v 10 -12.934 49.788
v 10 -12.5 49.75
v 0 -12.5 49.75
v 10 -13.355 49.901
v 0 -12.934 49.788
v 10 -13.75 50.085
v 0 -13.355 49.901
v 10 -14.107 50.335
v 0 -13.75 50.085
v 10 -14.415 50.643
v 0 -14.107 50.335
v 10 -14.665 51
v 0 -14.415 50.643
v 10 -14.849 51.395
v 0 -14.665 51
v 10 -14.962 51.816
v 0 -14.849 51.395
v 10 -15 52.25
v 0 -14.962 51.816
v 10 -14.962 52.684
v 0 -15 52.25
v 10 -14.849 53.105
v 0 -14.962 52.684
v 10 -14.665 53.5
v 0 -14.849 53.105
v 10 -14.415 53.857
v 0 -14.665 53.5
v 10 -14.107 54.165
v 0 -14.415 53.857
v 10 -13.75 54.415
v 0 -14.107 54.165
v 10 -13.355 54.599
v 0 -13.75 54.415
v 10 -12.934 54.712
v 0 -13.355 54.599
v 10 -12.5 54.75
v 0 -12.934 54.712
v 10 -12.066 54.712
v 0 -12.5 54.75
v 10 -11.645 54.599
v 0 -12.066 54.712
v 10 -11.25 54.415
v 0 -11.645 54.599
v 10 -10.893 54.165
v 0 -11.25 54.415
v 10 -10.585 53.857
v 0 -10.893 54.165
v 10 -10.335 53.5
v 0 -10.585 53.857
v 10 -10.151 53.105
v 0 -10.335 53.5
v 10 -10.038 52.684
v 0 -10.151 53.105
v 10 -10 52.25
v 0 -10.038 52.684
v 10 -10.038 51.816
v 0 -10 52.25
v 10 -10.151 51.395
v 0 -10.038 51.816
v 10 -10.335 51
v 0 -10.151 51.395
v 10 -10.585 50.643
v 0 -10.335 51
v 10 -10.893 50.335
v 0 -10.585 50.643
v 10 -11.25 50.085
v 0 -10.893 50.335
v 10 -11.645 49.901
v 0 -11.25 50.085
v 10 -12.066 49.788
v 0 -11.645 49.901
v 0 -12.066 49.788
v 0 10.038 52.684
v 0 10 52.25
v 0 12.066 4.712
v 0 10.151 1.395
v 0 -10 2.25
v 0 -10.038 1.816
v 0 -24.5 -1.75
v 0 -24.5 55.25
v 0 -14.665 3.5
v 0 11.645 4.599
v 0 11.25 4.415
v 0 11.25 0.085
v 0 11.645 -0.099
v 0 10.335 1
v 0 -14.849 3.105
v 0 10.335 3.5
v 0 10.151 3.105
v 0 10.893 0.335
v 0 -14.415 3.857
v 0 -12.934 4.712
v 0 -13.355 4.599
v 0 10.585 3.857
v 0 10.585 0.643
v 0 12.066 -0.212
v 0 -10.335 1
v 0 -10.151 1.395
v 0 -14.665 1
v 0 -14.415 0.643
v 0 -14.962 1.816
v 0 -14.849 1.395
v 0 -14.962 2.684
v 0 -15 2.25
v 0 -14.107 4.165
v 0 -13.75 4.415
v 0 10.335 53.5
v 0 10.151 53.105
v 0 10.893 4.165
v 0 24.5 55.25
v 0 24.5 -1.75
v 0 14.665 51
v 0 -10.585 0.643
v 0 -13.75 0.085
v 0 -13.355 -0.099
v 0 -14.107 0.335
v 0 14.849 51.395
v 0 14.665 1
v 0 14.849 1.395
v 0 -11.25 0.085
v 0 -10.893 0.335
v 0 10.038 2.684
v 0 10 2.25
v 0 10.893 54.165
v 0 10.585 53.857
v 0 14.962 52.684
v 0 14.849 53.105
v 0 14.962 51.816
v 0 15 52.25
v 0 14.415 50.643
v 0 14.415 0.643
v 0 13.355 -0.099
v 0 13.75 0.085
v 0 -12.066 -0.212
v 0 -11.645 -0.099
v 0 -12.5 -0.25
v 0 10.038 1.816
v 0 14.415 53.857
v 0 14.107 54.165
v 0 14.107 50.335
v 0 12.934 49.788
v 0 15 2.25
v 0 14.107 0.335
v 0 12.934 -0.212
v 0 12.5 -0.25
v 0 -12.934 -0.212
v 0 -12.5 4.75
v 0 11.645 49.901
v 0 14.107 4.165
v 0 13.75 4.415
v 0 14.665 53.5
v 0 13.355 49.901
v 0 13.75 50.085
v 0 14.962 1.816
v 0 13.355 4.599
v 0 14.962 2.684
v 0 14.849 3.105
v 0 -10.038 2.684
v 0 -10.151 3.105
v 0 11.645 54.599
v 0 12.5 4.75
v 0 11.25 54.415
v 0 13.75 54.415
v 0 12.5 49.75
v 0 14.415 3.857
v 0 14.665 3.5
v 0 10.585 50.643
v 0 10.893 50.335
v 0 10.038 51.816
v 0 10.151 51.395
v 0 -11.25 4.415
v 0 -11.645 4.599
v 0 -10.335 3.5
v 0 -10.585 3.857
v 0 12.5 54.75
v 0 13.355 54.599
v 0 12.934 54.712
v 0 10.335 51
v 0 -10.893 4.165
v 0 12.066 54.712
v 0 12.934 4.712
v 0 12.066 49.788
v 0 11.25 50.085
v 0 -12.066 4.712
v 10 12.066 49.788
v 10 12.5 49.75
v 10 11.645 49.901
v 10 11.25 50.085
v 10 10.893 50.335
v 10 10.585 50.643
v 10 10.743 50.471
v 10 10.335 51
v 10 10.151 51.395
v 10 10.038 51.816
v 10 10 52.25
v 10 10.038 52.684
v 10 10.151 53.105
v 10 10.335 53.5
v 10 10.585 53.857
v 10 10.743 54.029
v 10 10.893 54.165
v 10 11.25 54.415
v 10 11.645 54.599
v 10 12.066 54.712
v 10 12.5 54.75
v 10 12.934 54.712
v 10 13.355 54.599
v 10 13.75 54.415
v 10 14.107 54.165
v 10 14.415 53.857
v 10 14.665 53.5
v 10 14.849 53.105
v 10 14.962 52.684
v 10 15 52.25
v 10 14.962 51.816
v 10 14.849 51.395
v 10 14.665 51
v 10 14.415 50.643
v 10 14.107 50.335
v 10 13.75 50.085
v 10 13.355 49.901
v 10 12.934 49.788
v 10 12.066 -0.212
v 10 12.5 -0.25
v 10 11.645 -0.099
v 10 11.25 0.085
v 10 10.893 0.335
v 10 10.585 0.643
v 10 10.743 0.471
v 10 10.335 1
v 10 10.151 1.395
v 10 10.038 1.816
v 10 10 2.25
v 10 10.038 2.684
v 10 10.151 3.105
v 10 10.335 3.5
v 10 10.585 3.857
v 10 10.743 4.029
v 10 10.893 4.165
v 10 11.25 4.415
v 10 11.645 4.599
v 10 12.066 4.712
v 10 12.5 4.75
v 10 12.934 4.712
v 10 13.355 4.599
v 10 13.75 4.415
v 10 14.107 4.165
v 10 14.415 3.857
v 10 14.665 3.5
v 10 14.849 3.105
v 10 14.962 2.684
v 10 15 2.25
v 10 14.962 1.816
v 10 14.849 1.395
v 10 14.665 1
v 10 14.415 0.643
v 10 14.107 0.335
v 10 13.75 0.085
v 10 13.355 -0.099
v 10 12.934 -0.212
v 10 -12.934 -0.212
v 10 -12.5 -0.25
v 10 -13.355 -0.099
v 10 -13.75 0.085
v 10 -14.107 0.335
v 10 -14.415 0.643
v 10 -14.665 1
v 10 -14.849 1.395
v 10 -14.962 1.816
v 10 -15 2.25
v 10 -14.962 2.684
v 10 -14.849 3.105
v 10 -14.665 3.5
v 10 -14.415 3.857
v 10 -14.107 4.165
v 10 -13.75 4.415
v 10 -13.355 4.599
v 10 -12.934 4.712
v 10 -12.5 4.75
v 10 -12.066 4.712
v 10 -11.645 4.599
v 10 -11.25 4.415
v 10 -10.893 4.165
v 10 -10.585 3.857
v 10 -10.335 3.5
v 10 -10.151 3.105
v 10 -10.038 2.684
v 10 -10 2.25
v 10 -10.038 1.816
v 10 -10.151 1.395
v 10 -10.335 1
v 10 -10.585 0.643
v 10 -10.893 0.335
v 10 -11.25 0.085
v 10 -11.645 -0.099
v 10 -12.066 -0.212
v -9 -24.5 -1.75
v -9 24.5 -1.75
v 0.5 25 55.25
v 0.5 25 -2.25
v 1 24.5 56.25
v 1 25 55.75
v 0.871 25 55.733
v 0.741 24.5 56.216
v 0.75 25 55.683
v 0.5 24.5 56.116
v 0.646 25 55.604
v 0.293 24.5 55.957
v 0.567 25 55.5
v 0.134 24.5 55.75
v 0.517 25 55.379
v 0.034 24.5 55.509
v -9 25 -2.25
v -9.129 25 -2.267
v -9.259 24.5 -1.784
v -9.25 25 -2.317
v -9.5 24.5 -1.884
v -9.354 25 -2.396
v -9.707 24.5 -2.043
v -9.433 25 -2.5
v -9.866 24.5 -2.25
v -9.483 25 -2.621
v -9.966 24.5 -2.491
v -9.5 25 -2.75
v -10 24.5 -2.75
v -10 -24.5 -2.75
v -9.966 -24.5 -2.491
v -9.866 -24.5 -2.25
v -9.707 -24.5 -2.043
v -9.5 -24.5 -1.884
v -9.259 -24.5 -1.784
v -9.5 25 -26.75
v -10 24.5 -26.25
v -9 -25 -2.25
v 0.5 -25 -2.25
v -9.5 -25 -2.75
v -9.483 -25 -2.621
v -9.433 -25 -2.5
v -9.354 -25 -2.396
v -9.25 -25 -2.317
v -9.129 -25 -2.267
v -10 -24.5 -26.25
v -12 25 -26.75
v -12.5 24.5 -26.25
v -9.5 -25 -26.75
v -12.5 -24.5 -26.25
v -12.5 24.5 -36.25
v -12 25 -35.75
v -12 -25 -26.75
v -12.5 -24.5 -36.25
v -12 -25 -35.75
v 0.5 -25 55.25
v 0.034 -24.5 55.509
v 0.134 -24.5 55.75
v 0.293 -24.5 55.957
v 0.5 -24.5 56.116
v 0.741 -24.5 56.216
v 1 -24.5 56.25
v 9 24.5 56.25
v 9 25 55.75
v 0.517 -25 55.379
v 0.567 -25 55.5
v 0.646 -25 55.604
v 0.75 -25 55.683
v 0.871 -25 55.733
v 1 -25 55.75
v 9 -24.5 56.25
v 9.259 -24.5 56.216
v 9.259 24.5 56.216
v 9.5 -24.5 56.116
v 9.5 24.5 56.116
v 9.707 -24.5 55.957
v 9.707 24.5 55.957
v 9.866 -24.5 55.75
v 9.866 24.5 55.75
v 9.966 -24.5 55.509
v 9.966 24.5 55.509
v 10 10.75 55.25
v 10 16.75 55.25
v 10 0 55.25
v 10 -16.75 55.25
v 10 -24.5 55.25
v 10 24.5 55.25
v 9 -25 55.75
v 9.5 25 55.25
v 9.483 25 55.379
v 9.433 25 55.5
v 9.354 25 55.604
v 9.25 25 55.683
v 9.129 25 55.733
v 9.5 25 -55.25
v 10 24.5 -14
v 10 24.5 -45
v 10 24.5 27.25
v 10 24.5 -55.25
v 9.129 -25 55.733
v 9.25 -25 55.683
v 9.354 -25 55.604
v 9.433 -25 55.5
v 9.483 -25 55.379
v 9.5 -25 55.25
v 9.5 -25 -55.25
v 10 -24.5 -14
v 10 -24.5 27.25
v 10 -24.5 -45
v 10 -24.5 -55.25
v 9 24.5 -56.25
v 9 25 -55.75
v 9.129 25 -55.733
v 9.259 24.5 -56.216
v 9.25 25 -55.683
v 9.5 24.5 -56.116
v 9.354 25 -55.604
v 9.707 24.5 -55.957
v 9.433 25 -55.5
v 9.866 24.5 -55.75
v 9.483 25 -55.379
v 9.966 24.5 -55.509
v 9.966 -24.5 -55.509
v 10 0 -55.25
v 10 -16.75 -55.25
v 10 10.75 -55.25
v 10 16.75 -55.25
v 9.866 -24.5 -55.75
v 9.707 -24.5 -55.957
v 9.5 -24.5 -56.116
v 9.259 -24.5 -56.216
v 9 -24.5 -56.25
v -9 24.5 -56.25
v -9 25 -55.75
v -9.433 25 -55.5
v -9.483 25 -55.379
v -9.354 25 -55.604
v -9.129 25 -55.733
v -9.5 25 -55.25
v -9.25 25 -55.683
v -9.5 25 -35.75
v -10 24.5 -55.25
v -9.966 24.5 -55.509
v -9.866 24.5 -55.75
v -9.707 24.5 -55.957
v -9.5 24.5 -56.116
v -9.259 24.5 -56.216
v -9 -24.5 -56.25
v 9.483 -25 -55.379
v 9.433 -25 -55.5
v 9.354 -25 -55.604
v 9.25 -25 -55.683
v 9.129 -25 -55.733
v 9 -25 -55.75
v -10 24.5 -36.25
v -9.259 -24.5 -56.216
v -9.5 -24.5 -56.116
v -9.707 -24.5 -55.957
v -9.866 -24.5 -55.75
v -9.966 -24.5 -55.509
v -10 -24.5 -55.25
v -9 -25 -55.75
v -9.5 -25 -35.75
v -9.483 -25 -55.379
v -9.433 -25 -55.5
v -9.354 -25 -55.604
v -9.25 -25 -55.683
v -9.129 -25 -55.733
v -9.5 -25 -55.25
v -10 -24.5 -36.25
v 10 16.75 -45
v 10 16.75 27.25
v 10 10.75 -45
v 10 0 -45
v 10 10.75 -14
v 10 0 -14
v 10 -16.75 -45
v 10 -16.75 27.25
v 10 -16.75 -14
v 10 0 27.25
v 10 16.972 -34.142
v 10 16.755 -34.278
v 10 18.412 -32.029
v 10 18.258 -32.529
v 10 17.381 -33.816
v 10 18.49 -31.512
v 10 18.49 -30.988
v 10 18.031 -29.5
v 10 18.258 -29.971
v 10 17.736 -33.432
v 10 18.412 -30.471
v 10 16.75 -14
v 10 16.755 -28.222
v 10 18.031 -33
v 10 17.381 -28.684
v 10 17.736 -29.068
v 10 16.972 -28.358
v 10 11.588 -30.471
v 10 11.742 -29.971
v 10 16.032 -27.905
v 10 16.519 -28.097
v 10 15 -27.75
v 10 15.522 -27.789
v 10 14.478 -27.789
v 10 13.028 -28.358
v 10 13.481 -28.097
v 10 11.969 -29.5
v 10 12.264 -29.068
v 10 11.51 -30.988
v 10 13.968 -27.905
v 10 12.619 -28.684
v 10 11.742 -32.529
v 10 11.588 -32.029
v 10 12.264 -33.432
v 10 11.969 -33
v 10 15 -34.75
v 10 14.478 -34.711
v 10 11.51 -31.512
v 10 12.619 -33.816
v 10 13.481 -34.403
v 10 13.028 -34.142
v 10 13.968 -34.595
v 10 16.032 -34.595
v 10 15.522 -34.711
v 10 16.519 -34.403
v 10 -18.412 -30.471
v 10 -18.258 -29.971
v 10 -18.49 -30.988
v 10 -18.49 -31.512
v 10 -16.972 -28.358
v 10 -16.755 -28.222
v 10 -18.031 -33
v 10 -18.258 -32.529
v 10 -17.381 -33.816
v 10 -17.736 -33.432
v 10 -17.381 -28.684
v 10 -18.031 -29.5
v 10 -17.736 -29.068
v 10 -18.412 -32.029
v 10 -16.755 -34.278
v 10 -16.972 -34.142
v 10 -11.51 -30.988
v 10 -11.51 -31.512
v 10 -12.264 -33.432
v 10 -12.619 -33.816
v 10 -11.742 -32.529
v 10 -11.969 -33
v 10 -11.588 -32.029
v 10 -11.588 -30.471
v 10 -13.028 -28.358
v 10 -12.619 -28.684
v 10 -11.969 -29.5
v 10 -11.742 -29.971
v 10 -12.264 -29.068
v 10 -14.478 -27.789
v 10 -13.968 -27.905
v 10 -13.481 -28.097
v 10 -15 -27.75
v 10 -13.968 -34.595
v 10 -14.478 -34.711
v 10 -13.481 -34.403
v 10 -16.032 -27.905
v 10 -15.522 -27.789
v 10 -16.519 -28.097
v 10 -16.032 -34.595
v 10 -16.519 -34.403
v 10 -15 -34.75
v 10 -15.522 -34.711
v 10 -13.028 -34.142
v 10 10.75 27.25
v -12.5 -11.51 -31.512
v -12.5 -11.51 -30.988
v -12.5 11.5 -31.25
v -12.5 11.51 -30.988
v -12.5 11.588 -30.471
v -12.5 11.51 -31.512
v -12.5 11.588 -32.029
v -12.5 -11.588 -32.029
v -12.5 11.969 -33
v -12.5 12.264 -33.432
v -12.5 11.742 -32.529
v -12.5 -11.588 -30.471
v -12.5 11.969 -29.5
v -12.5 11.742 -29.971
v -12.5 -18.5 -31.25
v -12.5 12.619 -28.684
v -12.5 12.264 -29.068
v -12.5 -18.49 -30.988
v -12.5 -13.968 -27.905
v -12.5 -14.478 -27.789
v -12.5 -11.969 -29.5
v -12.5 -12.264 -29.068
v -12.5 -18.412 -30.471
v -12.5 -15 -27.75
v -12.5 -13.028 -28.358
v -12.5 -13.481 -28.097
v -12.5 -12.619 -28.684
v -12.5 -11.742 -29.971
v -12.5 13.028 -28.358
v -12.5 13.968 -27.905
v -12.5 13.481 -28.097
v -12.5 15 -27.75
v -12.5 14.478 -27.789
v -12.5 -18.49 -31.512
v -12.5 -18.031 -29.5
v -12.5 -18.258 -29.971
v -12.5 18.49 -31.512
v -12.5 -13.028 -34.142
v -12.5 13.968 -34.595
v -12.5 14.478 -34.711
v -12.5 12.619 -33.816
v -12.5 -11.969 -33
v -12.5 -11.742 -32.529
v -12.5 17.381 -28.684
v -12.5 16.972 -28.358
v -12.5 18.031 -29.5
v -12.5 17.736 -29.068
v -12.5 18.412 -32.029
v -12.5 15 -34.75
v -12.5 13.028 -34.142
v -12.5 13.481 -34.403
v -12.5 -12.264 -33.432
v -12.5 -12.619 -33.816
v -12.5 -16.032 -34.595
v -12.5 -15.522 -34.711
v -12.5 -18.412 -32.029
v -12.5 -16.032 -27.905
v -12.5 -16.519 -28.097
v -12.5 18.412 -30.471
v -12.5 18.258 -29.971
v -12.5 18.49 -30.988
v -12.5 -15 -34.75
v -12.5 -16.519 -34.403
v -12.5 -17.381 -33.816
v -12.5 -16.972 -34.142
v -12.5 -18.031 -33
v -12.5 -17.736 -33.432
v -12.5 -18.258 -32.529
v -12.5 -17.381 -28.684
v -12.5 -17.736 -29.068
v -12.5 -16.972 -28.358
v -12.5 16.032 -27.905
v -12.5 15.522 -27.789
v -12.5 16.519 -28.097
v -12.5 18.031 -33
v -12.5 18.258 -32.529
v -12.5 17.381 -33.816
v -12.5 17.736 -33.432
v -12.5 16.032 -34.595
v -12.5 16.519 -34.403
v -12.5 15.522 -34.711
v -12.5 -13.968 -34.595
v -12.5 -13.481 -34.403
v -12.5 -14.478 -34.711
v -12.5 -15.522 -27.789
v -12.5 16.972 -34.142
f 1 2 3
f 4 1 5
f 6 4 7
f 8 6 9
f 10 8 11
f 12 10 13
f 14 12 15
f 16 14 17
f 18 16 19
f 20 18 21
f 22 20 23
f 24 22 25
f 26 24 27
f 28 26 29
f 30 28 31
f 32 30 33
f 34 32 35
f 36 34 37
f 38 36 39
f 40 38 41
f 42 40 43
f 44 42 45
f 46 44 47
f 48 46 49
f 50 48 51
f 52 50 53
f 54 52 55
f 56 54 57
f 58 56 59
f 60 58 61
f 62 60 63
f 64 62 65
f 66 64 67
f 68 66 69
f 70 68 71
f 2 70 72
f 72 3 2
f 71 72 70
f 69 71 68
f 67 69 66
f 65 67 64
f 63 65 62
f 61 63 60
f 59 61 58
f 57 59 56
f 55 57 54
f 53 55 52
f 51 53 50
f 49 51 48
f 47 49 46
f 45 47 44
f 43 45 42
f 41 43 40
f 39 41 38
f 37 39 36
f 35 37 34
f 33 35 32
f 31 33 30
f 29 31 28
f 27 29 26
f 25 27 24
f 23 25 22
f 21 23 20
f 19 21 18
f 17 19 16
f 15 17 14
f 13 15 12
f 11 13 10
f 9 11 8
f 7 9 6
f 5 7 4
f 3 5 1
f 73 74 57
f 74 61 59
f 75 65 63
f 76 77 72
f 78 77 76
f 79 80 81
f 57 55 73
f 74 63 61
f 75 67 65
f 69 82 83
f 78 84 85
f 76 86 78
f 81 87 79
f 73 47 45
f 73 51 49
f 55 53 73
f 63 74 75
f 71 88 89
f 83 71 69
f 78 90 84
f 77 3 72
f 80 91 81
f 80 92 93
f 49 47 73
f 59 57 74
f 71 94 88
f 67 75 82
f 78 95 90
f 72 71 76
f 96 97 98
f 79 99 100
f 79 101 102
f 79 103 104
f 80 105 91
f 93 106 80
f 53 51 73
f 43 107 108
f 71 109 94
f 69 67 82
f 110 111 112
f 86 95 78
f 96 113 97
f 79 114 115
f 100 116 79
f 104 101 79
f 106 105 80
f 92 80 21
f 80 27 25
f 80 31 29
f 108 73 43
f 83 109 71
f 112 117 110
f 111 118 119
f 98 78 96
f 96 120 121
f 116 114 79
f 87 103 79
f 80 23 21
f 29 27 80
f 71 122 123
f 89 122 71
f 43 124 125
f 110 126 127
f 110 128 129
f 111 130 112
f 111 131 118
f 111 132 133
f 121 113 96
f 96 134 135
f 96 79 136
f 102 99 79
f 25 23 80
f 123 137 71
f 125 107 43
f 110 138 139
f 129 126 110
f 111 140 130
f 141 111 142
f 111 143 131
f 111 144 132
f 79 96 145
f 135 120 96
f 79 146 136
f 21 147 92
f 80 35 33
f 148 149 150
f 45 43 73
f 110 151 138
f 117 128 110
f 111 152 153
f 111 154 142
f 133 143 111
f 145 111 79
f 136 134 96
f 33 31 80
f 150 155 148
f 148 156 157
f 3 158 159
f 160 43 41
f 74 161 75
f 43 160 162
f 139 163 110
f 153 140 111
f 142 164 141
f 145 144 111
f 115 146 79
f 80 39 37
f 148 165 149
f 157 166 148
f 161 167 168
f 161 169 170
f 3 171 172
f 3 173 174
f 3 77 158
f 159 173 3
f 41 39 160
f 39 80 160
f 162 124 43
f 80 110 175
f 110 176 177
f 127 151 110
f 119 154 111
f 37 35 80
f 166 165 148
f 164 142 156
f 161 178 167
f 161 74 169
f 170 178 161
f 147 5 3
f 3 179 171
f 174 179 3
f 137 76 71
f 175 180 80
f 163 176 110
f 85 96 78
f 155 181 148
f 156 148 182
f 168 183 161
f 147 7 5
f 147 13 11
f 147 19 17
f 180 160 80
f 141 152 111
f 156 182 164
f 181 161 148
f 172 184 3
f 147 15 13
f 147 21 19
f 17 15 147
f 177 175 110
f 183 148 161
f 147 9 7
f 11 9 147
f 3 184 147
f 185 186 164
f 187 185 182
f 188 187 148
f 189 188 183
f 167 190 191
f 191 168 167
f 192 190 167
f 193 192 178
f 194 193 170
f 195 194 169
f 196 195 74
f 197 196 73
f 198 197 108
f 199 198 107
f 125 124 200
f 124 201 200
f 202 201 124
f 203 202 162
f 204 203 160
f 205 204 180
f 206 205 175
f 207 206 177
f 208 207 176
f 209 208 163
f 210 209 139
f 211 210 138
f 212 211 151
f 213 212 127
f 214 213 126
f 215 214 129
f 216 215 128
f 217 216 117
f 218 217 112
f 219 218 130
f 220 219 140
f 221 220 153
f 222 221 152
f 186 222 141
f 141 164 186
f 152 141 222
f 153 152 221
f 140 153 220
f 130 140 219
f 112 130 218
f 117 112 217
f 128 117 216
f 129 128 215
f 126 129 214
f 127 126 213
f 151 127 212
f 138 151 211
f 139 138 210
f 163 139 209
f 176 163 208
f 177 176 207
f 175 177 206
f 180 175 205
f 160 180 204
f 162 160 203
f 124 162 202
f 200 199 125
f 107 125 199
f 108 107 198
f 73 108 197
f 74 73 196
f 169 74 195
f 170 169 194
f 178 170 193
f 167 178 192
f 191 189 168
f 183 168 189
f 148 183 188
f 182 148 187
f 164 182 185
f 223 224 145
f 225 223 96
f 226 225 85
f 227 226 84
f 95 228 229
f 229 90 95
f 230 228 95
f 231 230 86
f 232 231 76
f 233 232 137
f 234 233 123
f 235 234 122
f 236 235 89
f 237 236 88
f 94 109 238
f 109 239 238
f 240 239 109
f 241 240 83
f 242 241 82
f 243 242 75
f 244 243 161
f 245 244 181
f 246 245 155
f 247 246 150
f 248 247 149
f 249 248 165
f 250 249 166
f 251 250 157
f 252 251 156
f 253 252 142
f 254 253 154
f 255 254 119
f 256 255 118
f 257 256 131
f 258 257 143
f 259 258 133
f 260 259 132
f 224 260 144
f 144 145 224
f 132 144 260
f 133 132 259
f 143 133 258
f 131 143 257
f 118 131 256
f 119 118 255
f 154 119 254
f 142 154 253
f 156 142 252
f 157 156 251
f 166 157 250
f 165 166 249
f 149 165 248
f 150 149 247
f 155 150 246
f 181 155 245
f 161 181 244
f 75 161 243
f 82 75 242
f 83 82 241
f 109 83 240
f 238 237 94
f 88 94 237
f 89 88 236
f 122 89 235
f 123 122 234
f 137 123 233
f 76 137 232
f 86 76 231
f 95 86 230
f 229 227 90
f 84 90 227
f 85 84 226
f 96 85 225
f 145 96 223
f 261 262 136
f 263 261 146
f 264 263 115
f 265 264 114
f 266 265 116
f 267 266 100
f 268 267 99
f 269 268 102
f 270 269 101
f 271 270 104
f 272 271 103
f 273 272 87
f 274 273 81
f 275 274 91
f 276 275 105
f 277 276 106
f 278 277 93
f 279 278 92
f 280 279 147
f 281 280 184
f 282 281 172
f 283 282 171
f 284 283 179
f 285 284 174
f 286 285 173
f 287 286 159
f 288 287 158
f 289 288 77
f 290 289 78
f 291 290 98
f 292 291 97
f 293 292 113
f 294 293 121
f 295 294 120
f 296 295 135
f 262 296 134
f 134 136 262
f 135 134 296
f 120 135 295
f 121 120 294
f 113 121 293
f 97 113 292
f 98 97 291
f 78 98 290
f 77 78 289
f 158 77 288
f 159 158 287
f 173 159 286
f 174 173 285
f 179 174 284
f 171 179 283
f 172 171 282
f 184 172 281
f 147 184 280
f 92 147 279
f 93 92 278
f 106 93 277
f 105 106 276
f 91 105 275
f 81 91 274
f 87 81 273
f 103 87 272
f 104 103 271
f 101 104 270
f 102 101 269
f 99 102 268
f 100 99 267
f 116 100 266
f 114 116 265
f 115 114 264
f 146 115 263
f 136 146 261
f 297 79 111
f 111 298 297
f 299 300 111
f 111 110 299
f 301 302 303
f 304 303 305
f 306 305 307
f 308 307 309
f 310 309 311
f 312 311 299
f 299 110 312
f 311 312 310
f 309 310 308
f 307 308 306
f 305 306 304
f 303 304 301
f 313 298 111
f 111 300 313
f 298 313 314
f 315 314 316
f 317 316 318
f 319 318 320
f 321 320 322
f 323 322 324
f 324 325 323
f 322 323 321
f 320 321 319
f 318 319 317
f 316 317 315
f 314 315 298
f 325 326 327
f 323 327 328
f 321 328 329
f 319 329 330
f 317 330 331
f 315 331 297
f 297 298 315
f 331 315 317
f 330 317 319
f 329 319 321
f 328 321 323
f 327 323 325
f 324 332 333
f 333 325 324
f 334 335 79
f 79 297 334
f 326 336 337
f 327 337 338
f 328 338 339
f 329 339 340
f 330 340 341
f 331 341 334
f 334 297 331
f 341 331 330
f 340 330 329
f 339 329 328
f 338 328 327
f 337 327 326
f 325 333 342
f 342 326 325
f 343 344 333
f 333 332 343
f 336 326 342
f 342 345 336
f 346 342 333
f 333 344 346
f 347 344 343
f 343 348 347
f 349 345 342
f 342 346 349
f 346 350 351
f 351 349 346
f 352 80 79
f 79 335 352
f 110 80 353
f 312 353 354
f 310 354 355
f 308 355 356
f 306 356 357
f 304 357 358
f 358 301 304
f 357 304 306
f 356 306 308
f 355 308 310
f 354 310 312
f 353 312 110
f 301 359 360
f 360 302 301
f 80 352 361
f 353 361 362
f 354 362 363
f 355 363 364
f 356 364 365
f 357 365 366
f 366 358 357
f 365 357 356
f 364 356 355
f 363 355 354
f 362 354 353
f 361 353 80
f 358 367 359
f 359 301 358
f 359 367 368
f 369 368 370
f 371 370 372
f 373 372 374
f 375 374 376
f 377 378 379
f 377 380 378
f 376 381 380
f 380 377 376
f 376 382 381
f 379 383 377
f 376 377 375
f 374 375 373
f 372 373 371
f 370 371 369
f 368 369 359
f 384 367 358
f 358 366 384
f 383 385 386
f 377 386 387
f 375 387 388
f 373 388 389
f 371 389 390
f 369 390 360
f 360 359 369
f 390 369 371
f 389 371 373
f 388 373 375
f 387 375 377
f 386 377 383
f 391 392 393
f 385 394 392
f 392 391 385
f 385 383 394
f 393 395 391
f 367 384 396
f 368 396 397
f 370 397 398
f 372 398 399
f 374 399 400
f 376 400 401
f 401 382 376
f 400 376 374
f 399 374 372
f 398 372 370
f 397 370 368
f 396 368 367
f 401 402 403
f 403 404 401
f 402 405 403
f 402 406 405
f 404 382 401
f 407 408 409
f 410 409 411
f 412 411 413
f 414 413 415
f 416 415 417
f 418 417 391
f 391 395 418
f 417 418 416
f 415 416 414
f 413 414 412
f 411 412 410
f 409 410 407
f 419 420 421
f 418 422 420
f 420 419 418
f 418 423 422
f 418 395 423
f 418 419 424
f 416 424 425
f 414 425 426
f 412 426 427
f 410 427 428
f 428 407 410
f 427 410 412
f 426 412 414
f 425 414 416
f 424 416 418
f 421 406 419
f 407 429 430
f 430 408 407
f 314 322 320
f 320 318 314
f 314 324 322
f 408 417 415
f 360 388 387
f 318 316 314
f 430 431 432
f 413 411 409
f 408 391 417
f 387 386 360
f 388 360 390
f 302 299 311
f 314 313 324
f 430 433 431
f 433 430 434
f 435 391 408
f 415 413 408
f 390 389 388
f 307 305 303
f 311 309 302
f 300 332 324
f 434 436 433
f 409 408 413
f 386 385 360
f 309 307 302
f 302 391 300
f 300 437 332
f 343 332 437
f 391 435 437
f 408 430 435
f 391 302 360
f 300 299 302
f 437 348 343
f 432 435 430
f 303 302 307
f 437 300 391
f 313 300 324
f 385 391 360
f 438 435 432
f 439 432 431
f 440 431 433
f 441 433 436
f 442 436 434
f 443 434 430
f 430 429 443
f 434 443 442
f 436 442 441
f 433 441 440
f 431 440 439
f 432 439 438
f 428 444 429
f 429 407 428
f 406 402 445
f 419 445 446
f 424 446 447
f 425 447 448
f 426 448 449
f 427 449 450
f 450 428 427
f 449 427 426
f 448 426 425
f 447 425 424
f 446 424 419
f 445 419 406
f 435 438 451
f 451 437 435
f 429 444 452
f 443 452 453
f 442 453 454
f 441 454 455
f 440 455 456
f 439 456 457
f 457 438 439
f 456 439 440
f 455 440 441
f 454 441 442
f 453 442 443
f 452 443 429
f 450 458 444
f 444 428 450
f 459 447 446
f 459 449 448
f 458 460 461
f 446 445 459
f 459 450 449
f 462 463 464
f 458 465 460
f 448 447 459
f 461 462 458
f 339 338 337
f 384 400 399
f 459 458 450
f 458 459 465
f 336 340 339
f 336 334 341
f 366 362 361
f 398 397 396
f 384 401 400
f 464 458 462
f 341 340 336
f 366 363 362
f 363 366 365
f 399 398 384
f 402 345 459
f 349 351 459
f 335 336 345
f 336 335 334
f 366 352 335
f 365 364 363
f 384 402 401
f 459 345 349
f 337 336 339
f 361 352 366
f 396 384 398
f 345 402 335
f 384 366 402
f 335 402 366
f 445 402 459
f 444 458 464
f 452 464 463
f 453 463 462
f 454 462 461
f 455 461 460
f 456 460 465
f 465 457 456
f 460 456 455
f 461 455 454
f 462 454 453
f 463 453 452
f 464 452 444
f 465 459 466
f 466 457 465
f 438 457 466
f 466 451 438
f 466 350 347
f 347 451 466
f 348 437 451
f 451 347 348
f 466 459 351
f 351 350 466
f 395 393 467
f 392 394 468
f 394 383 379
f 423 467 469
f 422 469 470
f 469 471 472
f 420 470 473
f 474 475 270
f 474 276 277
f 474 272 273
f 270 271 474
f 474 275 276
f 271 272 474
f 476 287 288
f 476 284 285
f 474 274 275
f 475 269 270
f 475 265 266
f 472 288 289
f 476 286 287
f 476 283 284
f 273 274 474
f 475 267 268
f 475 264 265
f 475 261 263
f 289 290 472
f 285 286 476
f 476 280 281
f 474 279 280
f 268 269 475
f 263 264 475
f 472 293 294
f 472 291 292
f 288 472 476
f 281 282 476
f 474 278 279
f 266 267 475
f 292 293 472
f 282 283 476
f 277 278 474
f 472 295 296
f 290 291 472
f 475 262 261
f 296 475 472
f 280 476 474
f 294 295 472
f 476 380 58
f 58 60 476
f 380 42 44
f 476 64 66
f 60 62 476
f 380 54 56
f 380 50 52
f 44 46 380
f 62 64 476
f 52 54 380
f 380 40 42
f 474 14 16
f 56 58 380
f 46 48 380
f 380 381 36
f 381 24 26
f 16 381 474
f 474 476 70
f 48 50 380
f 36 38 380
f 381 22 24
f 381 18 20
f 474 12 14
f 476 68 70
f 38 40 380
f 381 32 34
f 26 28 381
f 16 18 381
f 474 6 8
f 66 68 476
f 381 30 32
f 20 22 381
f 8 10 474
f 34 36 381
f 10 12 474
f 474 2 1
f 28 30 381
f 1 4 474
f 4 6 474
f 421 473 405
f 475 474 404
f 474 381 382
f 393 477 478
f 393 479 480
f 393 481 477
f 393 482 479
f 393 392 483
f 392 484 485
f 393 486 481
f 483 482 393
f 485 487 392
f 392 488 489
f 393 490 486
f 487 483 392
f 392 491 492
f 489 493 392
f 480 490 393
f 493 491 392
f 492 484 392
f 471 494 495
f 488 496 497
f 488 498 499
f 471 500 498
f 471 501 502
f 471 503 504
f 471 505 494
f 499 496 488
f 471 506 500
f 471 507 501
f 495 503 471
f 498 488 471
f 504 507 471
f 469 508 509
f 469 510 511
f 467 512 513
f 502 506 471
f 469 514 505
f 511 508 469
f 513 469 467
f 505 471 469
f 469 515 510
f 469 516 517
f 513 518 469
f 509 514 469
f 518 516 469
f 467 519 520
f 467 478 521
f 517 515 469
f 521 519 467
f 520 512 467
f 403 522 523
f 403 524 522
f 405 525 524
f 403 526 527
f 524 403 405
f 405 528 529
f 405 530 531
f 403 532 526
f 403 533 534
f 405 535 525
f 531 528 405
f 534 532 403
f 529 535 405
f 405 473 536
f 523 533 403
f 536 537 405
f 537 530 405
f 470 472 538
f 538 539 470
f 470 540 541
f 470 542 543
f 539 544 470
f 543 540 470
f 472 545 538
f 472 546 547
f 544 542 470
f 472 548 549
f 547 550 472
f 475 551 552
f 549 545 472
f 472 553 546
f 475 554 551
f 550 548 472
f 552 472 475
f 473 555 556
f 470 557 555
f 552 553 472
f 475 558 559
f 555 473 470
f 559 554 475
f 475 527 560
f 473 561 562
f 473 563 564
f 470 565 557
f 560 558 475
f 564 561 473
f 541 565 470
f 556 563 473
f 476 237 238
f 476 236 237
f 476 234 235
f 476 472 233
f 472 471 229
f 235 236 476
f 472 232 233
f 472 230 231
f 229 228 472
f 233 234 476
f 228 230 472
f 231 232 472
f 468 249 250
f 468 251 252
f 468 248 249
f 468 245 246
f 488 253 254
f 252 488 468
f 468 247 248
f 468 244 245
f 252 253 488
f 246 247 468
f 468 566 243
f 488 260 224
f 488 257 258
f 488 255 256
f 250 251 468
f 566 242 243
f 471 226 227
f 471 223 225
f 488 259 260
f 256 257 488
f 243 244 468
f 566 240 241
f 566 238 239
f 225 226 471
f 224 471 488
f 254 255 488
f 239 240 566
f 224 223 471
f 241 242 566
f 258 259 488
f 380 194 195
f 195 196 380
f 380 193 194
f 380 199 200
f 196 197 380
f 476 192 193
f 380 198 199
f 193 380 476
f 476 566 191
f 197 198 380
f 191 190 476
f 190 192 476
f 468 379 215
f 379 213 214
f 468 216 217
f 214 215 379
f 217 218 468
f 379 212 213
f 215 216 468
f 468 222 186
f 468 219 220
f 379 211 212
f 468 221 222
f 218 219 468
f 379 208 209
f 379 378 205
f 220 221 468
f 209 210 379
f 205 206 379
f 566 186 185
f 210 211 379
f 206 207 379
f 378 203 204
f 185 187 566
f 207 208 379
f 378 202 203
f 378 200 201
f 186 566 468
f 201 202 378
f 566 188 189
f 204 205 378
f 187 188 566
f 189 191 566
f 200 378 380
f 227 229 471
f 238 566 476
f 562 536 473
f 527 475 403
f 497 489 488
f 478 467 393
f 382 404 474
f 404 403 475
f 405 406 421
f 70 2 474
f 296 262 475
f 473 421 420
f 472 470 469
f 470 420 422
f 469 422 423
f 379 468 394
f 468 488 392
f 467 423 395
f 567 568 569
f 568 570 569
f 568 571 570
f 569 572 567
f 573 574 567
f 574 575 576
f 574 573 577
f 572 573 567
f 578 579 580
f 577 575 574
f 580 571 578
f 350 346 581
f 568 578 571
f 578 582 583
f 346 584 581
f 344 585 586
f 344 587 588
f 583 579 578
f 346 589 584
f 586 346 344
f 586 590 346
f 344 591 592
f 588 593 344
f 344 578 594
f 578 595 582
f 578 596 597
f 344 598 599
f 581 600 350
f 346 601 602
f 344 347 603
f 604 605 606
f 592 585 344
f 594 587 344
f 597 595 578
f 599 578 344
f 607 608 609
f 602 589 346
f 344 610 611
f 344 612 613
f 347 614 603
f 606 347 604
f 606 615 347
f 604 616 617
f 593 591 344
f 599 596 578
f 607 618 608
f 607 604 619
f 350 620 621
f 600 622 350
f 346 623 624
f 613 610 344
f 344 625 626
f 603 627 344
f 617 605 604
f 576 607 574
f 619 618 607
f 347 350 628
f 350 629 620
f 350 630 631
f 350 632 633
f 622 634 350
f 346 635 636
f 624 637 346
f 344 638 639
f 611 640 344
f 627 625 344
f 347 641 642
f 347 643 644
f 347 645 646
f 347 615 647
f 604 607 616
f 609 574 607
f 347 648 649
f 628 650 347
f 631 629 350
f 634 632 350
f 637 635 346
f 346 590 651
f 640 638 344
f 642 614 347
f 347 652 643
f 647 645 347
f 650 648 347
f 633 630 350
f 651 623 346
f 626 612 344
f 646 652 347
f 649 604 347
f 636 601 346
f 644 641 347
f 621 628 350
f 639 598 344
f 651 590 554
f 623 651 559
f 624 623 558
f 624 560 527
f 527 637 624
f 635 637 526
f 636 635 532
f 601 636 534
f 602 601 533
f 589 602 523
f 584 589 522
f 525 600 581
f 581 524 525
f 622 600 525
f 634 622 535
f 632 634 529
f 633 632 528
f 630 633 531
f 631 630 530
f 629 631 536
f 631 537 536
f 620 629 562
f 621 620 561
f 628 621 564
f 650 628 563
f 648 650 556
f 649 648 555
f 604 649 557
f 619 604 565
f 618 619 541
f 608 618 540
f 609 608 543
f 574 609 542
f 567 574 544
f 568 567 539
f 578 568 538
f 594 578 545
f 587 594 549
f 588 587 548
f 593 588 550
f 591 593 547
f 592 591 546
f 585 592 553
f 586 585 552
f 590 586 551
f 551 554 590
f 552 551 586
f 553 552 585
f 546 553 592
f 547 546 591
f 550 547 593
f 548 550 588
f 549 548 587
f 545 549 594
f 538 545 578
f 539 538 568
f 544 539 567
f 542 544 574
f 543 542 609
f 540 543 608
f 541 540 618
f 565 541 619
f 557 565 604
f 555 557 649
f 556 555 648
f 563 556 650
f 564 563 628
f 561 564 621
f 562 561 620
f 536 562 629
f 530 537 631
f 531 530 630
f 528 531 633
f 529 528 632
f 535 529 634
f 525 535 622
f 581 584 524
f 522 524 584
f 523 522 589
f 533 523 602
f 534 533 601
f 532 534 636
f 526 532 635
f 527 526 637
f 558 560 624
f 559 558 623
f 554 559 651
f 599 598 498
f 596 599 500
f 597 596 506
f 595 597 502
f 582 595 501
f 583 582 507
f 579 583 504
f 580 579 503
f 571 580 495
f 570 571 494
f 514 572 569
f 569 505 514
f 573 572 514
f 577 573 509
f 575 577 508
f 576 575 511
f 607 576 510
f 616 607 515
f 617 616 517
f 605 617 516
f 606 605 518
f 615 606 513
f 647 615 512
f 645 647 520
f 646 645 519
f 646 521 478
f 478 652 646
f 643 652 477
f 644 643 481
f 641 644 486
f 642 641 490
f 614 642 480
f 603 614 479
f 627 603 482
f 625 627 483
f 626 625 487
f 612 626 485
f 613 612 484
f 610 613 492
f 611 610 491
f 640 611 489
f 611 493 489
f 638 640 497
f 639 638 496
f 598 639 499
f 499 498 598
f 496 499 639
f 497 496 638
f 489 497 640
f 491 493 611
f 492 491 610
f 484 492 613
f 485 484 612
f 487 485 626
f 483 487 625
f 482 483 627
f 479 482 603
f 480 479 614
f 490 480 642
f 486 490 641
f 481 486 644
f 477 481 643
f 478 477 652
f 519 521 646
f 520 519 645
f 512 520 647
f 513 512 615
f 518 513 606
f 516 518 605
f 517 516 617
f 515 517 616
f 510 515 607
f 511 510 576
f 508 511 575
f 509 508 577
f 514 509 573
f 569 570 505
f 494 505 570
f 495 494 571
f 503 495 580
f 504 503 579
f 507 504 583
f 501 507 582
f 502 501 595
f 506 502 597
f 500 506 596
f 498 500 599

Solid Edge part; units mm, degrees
sketch "Sketch1" plane through (0, 0, 0) normal (0, -1, 0) x (1, 0, 0)
  line L0 (10, 56.25) -> (0, 56.25)
  line L1 (0, 56.25) -> (0, -1.75)
  line L2 (0, -1.75) -> (-10, -1.75)
  line L3 (-10, -1.75) -> (-10, -56.25)
  line L4 (-10, -56.25) -> (10, -56.25)
  line L5 (10, -56.25) -> (10, 56.25)
extrude "Extrusionsausprägung_20" add sketch "Sketch1" along normal mid plane 50
hole "Bohrung_4" at (10, -12.5, 52.25) direction (-1, 0, 0) diameter 5 end up to next
hole "Hole1" at (10, 12.5, 52.25) direction (-1, 0, 0) diameter 5 end up to next
hole "Hole2" at (10, 12.5, 2.25) direction (-1, 0, 0) diameter 5 end up to next
hole "Hole3" at (10, -12.5, 2.25) direction (-1, 0, 0) diameter 5 end up to next
sketch "Sketch2" plane through (0, -25, 0) normal (0, -1, 0) x (0, 0, -1)
  line L0 (26.25, -12.5) -> (36.25, -12.5)
  line L1 (36.25, -12.5) -> (36.25, -10)
  line L2 (36.25, -10) -> (26.25, -10)
  line L3 (26.25, -10) -> (26.25, -12.5)
extrude "Protrusion1" add sketch "Sketch2" against normal up to vertex (50 mm away)
hole "Bohrung_8" at (-12.5, -15, -31.25) direction (1, 0, 0) diameter 7 end up to next
hole "Hole4" at (-12.5, 15, -31.25) direction (1, 0, 0) diameter 7 end up to next
fillet "Verrundung_15" radius 1 5 edges at (-10, 0, -56.25) (10, 0, -56.25) (10, 0, 56.25) (0, 0, 56.25) (-10, 0, -1.75)
chamfer "Fase_9" distance 0.5 angle 45 30 edges at (-4.5, -25, -1.75) (-9.7071, -25, -2.0429) (-10, -25, -14.5) (-11.25, -25, -26.25) (-12.5, -25, -31.25) (-11.25, -25, -36.25) (-10, -25, -45.75) (-9.7071, -25, -55.9571) (0, -25, -56.25) (9.7071, -25, -55.9571) (10, -25, 0) (9.7071, -25, 55.9571) (5, -25, 56.25) (0.2929, -25, 55.9571) (0, -25, 26.75) (-10, 25, -14.5) (-9.7071, 25, -2.0429) (-4.5, 25, -1.75) (0, 25, 26.75) (0.2929, 25, 55.9571) (5, 25, 56.25) (9.7071, 25, 55.9571) (10, 25, 0) (9.7071, 25, -55.9571) (0, 25, -56.25) (-9.7071, 25, -55.9571) (-10, 25, -45.75) (-11.25, 25, -36.25) (-12.5, 25, -31.25) (-11.25, 25, -26.25)
